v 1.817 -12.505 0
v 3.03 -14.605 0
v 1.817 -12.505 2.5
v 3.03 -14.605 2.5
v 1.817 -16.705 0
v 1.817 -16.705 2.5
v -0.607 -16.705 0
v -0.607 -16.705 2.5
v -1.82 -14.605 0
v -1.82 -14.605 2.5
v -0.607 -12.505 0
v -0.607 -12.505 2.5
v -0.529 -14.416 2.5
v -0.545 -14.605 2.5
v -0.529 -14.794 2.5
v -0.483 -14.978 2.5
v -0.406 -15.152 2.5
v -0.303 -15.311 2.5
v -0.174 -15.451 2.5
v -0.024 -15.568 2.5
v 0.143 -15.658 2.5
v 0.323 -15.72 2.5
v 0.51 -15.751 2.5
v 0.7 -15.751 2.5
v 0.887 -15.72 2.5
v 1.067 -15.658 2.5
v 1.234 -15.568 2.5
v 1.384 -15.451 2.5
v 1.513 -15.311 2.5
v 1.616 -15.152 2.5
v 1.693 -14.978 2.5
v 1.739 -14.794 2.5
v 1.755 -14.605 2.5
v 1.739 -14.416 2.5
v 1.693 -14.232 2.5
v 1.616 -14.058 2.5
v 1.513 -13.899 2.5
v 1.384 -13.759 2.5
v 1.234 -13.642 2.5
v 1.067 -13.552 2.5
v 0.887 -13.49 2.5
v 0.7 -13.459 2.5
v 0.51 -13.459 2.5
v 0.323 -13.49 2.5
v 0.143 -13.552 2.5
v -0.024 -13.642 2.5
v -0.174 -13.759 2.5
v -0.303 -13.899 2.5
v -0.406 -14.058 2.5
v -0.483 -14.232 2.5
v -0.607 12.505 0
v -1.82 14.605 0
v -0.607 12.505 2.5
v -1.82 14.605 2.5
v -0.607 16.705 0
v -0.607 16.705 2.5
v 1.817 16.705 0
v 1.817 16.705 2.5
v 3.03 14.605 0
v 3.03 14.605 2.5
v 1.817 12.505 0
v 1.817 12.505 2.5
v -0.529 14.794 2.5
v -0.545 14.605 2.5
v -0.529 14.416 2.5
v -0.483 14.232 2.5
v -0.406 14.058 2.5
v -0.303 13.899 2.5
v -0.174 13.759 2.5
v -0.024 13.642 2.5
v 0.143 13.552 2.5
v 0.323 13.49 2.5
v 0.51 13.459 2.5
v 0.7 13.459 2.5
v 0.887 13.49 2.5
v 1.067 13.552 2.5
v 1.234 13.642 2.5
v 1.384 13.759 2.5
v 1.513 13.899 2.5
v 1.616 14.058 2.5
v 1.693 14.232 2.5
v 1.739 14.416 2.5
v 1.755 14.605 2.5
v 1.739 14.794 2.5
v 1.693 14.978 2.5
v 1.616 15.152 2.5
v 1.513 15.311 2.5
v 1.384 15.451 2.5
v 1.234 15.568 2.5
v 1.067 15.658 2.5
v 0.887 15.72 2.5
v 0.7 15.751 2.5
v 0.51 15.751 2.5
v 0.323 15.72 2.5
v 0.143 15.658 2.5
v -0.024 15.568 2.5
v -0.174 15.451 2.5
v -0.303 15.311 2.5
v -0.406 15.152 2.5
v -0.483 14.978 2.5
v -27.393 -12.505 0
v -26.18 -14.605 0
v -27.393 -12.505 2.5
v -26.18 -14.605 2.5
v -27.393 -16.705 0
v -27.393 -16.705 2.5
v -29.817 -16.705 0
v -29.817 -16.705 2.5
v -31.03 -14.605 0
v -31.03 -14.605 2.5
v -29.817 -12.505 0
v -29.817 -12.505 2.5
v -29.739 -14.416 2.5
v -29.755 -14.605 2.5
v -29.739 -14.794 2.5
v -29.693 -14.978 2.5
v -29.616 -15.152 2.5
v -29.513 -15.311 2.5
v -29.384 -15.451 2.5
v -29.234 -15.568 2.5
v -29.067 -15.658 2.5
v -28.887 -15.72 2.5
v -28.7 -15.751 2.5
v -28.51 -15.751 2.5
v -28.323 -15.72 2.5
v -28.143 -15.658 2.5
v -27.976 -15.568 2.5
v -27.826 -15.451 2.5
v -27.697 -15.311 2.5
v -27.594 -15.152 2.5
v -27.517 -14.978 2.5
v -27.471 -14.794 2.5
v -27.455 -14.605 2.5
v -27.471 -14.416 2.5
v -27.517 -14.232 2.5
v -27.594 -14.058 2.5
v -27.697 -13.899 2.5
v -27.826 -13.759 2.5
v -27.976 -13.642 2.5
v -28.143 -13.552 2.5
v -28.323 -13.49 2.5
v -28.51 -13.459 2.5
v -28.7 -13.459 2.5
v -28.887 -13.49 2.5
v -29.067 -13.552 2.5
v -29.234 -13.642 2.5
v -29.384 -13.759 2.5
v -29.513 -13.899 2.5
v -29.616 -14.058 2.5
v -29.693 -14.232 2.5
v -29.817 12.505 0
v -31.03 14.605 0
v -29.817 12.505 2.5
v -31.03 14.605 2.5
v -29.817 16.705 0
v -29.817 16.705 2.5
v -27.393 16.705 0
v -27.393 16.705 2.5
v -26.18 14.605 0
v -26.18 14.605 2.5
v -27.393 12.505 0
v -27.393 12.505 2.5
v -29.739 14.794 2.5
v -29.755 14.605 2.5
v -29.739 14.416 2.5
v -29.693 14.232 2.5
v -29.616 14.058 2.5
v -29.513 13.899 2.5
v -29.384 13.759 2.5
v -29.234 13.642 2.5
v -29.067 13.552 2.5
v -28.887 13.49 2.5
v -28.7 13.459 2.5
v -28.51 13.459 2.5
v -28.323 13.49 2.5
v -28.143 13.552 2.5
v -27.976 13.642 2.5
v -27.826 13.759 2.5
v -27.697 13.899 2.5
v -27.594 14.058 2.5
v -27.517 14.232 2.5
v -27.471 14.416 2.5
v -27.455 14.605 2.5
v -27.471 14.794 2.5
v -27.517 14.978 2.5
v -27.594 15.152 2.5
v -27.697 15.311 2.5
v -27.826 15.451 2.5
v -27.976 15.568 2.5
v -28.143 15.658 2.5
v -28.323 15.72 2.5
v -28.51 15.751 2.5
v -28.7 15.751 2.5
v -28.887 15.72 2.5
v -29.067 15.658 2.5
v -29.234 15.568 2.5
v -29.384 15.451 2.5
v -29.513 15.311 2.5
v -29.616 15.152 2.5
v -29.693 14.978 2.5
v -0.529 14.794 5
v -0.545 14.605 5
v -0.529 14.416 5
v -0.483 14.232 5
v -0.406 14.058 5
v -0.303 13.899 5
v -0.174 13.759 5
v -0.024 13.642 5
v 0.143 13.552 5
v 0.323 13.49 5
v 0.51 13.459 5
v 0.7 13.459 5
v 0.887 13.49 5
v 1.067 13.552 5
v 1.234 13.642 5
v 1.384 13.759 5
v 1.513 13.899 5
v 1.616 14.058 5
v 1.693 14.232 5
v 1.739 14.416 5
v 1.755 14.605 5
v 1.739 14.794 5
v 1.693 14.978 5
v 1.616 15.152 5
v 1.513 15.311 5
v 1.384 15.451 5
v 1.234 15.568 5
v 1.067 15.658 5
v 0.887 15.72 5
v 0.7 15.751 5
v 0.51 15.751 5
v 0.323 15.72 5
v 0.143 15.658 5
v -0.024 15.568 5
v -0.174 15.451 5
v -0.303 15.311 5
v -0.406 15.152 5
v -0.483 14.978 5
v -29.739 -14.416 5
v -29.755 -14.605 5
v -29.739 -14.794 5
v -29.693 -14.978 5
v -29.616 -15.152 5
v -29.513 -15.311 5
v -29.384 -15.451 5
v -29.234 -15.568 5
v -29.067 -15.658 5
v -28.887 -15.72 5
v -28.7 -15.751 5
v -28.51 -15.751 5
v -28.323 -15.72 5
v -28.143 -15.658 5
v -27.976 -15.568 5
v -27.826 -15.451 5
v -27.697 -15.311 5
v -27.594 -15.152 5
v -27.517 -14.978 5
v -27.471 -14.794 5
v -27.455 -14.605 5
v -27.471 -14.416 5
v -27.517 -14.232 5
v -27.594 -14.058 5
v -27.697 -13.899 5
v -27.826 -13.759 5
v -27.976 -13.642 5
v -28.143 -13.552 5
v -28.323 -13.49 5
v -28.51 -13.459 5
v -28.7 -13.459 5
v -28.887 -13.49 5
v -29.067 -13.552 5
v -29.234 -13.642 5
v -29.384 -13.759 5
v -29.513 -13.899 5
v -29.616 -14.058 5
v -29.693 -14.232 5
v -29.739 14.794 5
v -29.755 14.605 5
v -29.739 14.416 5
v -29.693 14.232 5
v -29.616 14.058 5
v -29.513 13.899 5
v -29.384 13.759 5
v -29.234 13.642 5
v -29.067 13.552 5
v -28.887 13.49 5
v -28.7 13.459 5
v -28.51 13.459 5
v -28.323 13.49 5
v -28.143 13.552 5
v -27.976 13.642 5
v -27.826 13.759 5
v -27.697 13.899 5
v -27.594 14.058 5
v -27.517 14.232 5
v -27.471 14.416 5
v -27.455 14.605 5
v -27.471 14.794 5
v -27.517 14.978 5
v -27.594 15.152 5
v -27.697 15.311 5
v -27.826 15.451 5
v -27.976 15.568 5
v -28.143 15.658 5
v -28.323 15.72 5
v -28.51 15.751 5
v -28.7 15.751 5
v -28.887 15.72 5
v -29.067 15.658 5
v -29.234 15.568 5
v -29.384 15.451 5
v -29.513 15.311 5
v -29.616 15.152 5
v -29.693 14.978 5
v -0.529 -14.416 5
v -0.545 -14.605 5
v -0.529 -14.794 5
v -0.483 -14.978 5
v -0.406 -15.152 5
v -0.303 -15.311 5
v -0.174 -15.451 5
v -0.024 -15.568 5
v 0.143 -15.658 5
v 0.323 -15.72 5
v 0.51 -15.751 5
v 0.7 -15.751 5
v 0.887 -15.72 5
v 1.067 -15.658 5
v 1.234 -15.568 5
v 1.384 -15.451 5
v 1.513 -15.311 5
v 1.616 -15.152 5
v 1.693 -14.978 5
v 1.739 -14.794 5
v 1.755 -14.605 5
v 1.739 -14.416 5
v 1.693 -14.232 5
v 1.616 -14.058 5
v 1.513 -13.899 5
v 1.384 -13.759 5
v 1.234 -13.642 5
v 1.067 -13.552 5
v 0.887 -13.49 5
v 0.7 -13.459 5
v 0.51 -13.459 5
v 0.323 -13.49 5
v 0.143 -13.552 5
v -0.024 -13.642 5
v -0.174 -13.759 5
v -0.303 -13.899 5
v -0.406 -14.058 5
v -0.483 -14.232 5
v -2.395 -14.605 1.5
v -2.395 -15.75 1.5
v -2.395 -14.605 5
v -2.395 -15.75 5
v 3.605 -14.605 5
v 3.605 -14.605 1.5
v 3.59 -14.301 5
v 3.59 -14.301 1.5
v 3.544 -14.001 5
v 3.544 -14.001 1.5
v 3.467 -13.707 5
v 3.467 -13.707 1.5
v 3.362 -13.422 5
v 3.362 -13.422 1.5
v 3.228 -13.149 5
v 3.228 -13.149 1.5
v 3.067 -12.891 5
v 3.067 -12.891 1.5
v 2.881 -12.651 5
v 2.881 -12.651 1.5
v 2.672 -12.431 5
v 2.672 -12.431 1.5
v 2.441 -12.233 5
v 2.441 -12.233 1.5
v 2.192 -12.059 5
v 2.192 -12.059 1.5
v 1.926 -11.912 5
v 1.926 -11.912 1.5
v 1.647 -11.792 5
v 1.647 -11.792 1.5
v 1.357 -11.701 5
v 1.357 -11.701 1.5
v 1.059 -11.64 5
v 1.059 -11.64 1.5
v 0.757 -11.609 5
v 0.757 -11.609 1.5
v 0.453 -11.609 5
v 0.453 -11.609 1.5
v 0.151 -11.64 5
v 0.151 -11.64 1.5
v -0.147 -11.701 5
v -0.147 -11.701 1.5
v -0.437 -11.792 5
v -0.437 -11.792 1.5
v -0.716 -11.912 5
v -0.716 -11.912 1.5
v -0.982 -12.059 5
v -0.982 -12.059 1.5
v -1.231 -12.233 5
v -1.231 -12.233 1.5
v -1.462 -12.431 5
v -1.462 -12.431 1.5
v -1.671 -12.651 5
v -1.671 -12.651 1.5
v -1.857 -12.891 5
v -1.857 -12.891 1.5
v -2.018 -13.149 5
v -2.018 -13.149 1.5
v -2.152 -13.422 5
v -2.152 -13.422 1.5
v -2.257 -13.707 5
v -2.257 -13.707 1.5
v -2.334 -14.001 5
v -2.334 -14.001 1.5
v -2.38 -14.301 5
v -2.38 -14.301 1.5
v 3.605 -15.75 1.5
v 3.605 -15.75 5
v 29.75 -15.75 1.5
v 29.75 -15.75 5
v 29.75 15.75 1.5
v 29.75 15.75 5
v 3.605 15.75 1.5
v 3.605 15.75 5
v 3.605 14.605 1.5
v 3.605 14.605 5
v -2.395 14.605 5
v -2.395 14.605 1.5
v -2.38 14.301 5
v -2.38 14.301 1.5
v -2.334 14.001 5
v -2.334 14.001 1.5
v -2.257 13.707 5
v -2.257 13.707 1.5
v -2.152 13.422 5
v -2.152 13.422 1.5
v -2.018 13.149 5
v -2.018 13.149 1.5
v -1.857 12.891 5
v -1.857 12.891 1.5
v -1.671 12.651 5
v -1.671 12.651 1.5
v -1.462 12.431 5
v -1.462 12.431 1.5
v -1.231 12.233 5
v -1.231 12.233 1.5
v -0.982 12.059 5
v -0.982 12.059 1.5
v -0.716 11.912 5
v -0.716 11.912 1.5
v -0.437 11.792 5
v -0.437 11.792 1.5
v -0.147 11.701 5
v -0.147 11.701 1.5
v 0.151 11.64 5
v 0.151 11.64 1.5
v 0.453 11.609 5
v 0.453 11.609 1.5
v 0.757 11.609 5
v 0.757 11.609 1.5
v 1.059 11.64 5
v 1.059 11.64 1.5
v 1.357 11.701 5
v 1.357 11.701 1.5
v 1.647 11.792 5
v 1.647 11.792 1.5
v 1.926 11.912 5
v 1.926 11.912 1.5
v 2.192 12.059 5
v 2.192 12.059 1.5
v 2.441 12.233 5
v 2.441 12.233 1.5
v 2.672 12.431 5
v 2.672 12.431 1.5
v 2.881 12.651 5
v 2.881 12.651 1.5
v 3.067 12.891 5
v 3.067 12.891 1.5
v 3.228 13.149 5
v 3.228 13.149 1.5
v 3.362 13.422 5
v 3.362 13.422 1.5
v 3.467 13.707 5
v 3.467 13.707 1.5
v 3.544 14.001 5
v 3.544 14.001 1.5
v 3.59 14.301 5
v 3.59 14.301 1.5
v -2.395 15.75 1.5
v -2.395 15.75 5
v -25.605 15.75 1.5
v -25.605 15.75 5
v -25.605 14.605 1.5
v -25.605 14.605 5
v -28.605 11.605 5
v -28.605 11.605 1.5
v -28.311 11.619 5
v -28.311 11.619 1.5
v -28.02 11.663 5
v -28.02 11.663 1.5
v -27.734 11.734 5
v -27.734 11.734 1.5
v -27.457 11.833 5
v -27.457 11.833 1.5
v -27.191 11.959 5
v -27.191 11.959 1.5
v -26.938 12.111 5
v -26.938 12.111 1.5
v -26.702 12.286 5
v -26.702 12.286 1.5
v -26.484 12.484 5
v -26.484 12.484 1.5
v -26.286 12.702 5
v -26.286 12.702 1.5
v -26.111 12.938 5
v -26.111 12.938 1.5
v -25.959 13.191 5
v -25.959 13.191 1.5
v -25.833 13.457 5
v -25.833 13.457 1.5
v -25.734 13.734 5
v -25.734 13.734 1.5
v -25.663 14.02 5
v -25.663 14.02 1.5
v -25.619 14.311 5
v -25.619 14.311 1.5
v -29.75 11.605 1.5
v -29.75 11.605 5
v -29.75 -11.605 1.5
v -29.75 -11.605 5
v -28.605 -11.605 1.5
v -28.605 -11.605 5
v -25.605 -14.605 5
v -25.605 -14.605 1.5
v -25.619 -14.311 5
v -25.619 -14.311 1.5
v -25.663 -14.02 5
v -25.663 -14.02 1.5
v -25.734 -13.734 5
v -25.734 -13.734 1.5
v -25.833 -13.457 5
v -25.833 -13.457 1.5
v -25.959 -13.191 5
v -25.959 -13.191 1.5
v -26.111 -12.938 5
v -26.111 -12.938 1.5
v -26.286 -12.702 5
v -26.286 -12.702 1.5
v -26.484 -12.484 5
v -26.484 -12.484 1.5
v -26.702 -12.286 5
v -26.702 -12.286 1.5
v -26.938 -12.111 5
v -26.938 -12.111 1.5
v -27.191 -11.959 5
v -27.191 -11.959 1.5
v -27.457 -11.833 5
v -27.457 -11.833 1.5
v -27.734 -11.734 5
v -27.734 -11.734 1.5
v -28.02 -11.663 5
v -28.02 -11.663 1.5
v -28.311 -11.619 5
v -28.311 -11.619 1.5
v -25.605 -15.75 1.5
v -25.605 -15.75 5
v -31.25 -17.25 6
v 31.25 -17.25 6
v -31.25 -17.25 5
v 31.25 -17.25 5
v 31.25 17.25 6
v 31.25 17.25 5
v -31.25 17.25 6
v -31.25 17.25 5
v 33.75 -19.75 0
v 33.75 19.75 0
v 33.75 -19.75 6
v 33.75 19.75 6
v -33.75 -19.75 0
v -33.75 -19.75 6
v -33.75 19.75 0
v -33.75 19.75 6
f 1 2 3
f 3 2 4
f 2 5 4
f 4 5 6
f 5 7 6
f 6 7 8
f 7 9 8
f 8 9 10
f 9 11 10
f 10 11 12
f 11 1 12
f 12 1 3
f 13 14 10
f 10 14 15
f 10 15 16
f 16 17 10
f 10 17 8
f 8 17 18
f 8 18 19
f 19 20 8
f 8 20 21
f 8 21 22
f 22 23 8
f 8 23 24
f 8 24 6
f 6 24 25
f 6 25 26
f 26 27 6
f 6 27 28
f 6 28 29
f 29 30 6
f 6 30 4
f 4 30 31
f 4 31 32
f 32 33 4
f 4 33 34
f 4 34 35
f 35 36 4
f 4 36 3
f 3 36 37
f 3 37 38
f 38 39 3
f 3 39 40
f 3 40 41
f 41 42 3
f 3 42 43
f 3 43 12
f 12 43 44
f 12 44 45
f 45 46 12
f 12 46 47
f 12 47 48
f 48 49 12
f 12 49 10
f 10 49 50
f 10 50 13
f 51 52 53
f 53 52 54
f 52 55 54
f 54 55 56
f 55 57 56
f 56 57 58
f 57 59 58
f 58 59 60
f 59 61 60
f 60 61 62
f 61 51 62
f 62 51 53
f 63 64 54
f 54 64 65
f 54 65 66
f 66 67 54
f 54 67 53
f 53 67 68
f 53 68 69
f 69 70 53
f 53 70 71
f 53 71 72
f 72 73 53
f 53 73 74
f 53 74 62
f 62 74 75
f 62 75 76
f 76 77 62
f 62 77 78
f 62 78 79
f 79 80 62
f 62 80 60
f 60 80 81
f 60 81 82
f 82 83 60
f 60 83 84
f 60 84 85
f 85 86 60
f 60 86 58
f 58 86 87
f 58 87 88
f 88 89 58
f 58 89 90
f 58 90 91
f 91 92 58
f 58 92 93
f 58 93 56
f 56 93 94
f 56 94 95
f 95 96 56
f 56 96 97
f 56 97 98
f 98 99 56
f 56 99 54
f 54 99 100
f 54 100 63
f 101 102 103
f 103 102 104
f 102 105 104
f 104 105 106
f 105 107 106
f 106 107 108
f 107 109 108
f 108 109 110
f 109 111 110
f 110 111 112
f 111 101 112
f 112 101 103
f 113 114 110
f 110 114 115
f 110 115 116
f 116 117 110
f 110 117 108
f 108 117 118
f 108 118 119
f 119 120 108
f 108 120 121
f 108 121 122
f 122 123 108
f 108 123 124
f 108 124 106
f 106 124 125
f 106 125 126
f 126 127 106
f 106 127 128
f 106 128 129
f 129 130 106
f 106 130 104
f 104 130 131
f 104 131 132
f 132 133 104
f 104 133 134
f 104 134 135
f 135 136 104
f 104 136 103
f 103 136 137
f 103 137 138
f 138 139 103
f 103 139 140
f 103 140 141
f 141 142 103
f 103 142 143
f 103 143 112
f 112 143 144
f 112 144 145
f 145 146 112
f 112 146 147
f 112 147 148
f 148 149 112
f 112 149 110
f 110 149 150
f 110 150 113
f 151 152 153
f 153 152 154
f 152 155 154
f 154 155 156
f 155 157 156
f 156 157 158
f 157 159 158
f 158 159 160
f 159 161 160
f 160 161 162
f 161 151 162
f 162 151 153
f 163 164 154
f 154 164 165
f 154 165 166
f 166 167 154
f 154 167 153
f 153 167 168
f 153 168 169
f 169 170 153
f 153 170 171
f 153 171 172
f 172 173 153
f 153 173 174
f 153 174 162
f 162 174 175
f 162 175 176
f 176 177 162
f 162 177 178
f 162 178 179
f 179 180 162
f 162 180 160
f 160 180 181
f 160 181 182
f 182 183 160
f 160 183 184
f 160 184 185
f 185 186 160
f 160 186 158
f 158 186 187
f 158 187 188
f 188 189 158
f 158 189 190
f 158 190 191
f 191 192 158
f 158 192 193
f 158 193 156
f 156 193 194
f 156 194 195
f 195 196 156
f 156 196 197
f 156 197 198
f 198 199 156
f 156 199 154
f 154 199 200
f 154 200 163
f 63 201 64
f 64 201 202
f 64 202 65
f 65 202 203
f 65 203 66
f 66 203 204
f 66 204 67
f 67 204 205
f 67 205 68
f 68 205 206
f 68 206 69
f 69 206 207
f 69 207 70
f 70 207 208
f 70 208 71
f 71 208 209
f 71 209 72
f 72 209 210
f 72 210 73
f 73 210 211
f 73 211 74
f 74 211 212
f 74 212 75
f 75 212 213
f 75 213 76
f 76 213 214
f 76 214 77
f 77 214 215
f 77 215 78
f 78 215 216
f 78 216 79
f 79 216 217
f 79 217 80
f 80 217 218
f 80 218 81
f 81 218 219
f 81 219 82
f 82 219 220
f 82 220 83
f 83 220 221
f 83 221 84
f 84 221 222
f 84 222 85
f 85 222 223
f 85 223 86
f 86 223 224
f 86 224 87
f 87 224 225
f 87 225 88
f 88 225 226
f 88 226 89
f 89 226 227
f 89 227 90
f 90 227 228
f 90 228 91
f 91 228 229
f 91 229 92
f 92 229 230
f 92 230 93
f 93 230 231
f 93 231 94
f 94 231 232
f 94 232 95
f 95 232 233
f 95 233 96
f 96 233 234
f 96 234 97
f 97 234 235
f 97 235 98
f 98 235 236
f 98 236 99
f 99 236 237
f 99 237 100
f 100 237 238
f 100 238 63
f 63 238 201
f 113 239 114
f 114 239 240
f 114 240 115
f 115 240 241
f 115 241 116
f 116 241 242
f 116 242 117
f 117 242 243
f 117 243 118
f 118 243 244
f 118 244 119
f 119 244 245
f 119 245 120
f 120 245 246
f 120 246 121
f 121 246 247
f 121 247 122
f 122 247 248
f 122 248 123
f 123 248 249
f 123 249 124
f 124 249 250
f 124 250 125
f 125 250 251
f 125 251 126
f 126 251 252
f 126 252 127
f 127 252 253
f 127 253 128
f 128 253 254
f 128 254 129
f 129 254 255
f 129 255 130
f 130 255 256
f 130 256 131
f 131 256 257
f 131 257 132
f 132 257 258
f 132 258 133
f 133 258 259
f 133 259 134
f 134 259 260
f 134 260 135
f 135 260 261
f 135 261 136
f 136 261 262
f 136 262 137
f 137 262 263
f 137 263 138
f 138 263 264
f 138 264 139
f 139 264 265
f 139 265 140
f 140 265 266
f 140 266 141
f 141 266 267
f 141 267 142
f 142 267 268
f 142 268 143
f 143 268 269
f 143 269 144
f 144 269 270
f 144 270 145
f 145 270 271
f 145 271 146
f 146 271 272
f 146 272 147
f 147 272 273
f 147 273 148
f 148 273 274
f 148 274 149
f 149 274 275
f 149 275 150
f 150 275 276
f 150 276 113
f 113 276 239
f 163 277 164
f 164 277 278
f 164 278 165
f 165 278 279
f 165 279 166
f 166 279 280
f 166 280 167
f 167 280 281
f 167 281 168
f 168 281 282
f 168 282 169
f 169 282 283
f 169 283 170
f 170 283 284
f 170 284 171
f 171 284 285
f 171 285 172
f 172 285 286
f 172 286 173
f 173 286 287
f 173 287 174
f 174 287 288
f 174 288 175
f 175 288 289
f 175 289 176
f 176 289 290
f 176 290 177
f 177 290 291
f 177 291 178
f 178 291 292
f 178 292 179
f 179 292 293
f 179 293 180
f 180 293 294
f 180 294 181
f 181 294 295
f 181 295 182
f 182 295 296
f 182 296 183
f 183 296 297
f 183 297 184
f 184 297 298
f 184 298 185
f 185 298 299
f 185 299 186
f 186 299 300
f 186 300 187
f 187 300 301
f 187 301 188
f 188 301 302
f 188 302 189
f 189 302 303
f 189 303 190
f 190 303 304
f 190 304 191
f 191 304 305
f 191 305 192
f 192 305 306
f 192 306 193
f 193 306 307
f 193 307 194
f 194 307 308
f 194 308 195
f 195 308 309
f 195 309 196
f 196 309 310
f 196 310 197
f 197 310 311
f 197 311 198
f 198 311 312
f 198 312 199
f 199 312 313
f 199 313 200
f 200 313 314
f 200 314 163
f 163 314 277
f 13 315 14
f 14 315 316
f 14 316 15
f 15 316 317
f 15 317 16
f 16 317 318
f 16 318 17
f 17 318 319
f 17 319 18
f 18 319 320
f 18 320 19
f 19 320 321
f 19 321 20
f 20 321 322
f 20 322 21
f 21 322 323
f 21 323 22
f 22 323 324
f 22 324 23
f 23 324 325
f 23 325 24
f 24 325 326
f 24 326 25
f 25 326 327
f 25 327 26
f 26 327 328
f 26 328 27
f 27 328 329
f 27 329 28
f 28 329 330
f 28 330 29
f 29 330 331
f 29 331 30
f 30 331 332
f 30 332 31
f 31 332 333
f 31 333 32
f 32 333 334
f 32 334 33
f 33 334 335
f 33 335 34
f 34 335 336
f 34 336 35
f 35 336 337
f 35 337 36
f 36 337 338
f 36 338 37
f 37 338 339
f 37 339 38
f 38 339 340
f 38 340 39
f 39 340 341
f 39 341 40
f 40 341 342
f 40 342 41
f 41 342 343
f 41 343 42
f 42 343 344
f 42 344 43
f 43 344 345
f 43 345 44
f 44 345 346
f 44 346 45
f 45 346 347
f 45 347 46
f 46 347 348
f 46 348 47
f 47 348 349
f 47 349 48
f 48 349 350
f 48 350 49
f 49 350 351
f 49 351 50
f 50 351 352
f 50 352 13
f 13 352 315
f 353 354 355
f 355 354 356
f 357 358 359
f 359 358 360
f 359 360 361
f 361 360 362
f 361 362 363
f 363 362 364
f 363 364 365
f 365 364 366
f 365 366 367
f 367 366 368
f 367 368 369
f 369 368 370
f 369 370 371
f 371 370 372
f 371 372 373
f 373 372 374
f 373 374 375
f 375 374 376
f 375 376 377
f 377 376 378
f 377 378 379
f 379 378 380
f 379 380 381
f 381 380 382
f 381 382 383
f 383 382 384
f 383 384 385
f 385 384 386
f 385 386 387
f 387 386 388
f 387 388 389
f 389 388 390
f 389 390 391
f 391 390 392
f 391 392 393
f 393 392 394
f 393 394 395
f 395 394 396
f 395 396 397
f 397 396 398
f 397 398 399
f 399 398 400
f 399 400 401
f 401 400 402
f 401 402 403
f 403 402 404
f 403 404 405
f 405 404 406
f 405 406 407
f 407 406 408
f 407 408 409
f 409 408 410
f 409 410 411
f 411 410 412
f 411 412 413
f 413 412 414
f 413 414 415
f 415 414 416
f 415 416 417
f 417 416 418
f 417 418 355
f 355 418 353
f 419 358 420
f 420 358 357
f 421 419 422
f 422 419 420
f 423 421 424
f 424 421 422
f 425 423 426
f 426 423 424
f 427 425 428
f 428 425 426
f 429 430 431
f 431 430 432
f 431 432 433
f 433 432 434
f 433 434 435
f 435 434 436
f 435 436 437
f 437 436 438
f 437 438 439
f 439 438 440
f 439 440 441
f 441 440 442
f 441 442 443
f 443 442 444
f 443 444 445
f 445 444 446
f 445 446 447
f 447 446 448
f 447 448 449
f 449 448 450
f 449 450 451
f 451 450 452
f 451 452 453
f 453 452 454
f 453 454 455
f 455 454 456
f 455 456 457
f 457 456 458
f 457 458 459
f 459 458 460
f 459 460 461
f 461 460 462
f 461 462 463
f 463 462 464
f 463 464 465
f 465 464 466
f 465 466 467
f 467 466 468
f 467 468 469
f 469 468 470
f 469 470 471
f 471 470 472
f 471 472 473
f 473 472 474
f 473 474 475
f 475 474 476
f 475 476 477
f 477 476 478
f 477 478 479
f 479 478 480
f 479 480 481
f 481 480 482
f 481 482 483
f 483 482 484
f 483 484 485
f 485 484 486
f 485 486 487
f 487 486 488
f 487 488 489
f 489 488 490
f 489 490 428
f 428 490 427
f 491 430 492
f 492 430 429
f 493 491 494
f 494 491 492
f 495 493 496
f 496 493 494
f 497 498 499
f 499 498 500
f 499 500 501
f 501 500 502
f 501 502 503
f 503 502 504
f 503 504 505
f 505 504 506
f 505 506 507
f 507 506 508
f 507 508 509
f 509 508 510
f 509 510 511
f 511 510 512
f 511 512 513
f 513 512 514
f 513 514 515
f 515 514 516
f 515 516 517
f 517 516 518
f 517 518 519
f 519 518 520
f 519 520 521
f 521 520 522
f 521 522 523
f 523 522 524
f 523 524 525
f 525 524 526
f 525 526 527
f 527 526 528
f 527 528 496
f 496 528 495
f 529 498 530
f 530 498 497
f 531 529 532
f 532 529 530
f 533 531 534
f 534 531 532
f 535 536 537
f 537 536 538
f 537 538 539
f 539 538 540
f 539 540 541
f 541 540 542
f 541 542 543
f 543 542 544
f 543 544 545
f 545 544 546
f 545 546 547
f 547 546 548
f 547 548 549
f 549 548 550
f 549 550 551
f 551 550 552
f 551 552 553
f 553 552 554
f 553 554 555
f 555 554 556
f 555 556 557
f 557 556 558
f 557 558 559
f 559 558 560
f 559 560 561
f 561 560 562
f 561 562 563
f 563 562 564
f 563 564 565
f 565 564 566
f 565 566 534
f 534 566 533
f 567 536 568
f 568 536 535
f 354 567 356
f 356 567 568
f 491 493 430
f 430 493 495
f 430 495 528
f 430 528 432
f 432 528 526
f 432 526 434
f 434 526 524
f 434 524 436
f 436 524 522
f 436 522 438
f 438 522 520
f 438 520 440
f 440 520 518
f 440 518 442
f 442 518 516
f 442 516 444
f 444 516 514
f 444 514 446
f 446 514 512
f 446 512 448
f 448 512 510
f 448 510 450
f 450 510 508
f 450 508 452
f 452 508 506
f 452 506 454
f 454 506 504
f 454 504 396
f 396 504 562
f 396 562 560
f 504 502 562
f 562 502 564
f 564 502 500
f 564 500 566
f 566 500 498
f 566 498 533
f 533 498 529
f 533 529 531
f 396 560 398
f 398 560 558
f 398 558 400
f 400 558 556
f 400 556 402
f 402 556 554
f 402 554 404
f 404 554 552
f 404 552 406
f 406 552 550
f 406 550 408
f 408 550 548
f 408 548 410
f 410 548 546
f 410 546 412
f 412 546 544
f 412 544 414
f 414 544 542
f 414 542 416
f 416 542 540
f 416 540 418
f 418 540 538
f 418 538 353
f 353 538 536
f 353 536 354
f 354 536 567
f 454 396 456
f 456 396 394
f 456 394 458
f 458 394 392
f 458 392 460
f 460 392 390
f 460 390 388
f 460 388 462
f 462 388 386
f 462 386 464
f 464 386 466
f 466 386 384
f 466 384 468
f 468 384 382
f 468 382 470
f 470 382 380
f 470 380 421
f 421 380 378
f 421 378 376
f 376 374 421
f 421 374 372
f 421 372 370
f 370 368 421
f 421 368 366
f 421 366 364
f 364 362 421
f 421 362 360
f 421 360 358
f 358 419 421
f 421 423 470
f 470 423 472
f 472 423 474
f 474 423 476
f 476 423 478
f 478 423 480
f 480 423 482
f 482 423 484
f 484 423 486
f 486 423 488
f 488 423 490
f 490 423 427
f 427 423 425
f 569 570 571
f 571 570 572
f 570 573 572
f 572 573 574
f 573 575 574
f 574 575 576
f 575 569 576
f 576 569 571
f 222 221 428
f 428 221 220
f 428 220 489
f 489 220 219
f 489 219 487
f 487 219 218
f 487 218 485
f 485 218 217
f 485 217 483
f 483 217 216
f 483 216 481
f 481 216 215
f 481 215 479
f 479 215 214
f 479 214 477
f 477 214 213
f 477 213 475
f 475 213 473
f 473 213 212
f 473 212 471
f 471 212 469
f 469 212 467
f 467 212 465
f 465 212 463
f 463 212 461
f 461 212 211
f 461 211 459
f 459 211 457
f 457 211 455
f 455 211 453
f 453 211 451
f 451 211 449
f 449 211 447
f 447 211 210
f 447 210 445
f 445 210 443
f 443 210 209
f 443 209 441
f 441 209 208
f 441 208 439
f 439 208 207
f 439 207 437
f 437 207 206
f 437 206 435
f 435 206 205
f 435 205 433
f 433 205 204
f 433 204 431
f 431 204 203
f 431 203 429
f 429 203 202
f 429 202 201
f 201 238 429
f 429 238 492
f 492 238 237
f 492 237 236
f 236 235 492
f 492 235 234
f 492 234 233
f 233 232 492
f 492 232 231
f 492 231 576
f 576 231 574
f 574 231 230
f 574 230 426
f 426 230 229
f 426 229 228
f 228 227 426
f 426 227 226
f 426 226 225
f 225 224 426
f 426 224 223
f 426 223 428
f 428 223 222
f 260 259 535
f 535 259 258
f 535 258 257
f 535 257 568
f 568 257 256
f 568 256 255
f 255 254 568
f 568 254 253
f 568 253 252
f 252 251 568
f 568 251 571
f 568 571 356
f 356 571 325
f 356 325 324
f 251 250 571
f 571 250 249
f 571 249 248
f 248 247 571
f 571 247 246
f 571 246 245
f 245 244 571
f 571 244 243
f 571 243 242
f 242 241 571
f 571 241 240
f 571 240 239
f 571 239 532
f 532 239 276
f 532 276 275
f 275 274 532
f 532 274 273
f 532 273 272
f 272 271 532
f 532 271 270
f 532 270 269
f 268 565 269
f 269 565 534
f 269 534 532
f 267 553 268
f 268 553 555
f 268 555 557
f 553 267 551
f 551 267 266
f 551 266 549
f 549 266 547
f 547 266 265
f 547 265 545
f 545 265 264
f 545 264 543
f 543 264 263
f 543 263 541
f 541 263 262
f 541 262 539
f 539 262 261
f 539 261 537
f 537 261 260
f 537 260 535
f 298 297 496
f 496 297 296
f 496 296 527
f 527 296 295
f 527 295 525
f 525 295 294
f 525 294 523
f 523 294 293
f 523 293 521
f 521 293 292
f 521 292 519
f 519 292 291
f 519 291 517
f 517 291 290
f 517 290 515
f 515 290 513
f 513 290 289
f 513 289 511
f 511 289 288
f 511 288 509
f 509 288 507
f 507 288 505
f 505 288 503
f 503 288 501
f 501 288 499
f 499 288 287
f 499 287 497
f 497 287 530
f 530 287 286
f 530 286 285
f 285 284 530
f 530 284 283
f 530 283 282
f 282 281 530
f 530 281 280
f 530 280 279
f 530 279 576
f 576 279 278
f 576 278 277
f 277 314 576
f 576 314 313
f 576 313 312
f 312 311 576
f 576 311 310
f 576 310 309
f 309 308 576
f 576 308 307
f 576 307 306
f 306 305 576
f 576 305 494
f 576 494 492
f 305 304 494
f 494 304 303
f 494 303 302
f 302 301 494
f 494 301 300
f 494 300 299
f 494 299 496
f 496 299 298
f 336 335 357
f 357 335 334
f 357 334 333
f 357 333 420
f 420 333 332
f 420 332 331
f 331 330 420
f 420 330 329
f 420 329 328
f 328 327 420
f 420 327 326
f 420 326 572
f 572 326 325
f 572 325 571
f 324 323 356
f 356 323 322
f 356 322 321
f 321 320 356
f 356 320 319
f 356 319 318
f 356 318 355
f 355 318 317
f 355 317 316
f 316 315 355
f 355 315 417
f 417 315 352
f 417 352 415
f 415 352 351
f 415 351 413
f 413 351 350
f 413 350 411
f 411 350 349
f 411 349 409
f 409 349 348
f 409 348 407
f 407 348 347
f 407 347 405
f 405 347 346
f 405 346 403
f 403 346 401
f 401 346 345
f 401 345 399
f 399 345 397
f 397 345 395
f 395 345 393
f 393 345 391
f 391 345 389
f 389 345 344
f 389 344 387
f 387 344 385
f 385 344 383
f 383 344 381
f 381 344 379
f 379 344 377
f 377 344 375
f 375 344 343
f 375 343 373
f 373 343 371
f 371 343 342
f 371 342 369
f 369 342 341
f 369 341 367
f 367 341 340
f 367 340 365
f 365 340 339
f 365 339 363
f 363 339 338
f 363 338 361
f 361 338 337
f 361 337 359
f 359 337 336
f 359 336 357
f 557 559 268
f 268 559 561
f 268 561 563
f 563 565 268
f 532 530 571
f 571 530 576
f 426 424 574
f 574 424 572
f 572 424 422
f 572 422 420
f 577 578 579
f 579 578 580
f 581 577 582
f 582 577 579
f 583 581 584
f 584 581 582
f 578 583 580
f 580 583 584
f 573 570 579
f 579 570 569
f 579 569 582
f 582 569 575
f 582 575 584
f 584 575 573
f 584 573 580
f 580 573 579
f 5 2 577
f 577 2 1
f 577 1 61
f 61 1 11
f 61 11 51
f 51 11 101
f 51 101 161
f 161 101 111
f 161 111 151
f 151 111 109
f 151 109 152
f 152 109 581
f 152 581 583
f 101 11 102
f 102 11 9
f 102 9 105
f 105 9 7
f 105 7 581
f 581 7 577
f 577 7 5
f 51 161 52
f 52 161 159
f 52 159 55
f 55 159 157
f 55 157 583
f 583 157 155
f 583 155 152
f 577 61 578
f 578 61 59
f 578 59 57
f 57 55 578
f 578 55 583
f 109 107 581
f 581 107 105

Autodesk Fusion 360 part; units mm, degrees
sketch "Skizze1" plane through (0, 0, 0) normal (0, 0, 1) x (1, 0, 0)
  line L0 (33.75, -19.75) -> (-33.75, -19.75)
  line L1 (-33.75, -19.75) -> (-33.75, 19.75)
  line L2 (-33.75, 19.75) -> (33.75, 19.75)
  line L3 (33.75, 19.75) -> (33.75, -19.75)
  line L4 (33.75, -19.75) -> (-33.75, 19.75) construction
  line L5 (-33.75, -19.75) -> (33.75, 19.75) construction
  dimension "d1" = 67.5
  dimension "d2" = 39.5
extrude "Extrusion1" add sketch "Skizze1" along normal blind 6
sketch "Skizze2" plane through (0, 0, 6) normal (0, 0, 1) x (-1, 0, 0)
  line L0 (-33.75, -19.75) -> (33.75, -19.75)
  line L1 (33.75, -19.75) -> (33.75, 19.75)
  line L2 (33.75, 19.75) -> (-33.75, 19.75)
  line L3 (-33.75, 19.75) -> (-33.75, -19.75)
  line L4 (31.25, 17.25) -> (-31.25, 17.25)
  line L5 (-31.25, 17.25) -> (-31.25, -17.25)
  line L6 (-31.25, -17.25) -> (31.25, -17.25)
  line L7 (31.25, -17.25) -> (31.25, 17.25)
  line L8 (31.25, 17.25) -> (-31.25, -17.25) construction
  line L9 (-31.25, 17.25) -> (31.25, -17.25) construction
  dimension "d5" = 34.5
  dimension "d6" = 62.5
extrude "Extrusion2" cut sketch "Skizze2" against normal blind 1 contours L4 L5 L6 L7
sketch "Skizze3" plane through (0, 0, 5) normal (0, 0, 1) x (-1, 0, 0)
  line L0 (31.25, -17.25) -> (31.25, 17.25)
  line L1 (31.25, 17.25) -> (-31.25, 17.25)
  line L2 (-31.25, 17.25) -> (-31.25, -17.25)
  line L3 (-31.25, -17.25) -> (31.25, -17.25)
  line L4 (29.75, -15.75) -> (-29.75, -15.75)
  line L5 (-29.75, -15.75) -> (-29.75, 15.75)
  line L6 (-29.75, 15.75) -> (29.75, 15.75)
  line L7 (29.75, 15.75) -> (29.75, -15.75)
  line L8 (29.75, -15.75) -> (-29.75, 15.75) construction
  line L9 (-29.75, -15.75) -> (29.75, 15.75) construction
  line L10 (28.605, -14.605) -> (-0.605, -14.605) construction
  line L11 (-0.605, -14.605) -> (-0.605, 14.605) construction
  line L12 (-0.605, 14.605) -> (28.605, 14.605) construction
  line L13 (28.605, 14.605) -> (28.605, -14.605) construction
  line L14 (31.25, -17.25) -> (28.605, -14.605) construction
  line L15 (31.25, 17.25) -> (28.605, 14.605) construction
  line L16 (28.605, -11.605) -> (29.75, -11.605)
  line L17 (25.605, -14.605) -> (25.605, -15.75)
  line L18 (28.605, 11.605) -> (29.75, 11.605)
  line L19 (25.605, 14.605) -> (25.605, 15.75)
  arc A0 (28.605, -11.605) -> (25.605, -14.605) centre (28.605, -14.605) ccw
  arc A1 (25.605, 14.605) -> (28.605, 11.605) centre (28.605, 14.605) ccw
  line L20 (2.395, 14.605) -> (2.395, 15.75)
  line L21 (-3.605, 14.605) -> (-3.605, 15.75)
  line L22 (2.395, -14.605) -> (2.395, -15.75)
  line L23 (-3.605, -14.605) -> (-3.605, -15.75)
  arc A2 (2.395, -14.605) -> (-3.605, -14.605) centre (-0.605, -14.605) ccw
  arc A3 (-3.605, 14.605) -> (2.395, 14.605) centre (-0.605, 14.605) ccw
  dimension "d9" = 1.5
  dimension "d10" = 1.5
  dimension "d13" = 29.21
  dimension "d14" = 29.21
  dimension "d15" = 6
extrude "Extrusion3" cut sketch "Skizze3" against normal up to surface (3.5 mm away) contours L4 L5 L6 L7 L16 L17 L18 L19 A0 A1 L20 L21 L22 L23 A2 A3
sketch "Skizze4" plane through (0, 0, 5) normal (0, 0, 1) x (-1, 0, 0)
  line L0 (2.395, 14.605) -> (2.395, 15.75)
  line L1 (2.395, 15.75) -> (25.605, 15.75)
  line L2 (25.605, 15.75) -> (25.605, 14.605)
  arc A0 (25.605, 14.605) -> (28.605, 11.605) centre (28.605, 14.605) ccw
  line L3 (28.605, 11.605) -> (29.75, 11.605)
  line L4 (29.75, 11.605) -> (29.75, -11.605)
  line L5 (29.75, -11.605) -> (28.605, -11.605)
  arc A1 (28.605, -11.605) -> (25.605, -14.605) centre (28.605, -14.605) ccw
  line L6 (25.605, -14.605) -> (25.605, -15.75)
  line L7 (25.605, -15.75) -> (2.395, -15.75)
  line L8 (2.395, -15.75) -> (2.395, -14.605)
  arc A2 (2.395, -14.605) -> (-3.605, -14.605) centre (-0.605, -14.605) ccw
  line L9 (-3.605, -14.605) -> (-3.605, -15.75)
  line L10 (-3.605, -15.75) -> (-29.75, -15.75)
  line L11 (-29.75, -15.75) -> (-29.75, 15.75)
  line L12 (-29.75, 15.75) -> (-3.605, 15.75)
  line L13 (-3.605, 15.75) -> (-3.605, 14.605)
  arc A3 (-3.605, 14.605) -> (2.395, 14.605) centre (-0.605, 14.605) ccw
  line L14 (31.25, -17.25) -> (31.25, 17.25)
  line L15 (31.25, 17.25) -> (-31.25, 17.25)
  line L16 (-31.25, 17.25) -> (-31.25, -17.25)
  line L17 (-31.25, -17.25) -> (31.25, -17.25)
  circle A4 centre (28.605, -14.605) radius 1.15
  circle A5 centre (-0.605, -14.605) radius 1.15
  circle A6 centre (28.605, 14.605) radius 1.15
  circle A7 centre (-0.605, 14.605) radius 1.15
  dimension "d16" = 2.3
extrude "Extrusion4" cut sketch "Skizze4" against normal through all contours A4 | A5 | A6 | A7
sketch "Skizze5" plane through (0, 0, 0) normal (0, 0, -1) x (1, 0, 0)
  circle A0 centre (0.605, -14.605) radius 1.15
  circle A1 centre (-28.605, 14.605) radius 1.15
  circle A2 centre (-28.605, -14.605) radius 1.15
  circle A3 centre (0.605, 14.605) radius 1.15
  line L0 (-33.75, -19.75) -> (33.75, -19.75)
  line L1 (33.75, -19.75) -> (33.75, 19.75)
  line L2 (33.75, 19.75) -> (-33.75, 19.75)
  line L3 (-33.75, 19.75) -> (-33.75, -19.75)
  line L4 (-27.3926, 12.505) -> (-26.1801, 14.605)
  line L5 (-26.1801, 14.605) -> (-27.3926, 16.705)
  line L6 (-27.3926, 16.705) -> (-29.8174, 16.705)
  line L7 (-29.8174, 16.705) -> (-31.0299, 14.605)
  line L8 (-31.0299, 14.605) -> (-29.8174, 12.505)
  line L9 (-29.8174, 12.505) -> (-27.3926, 12.505)
  circle A4 centre (-28.605, 14.605) radius 1.15
  line L10 (-29.8174, -12.505) -> (-31.0299, -14.605)
  line L11 (-31.0299, -14.605) -> (-29.8174, -16.705)
  line L12 (-29.8174, -16.705) -> (-27.3926, -16.705)
  line L13 (-27.3926, -16.705) -> (-26.1801, -14.605)
  line L14 (-26.1801, -14.605) -> (-27.3926, -12.505)
  line L15 (-27.3926, -12.505) -> (-29.8174, -12.505)
  line L16 (1.8174, 12.505) -> (3.0299, 14.605)
  line L17 (3.0299, 14.605) -> (1.8174, 16.705)
  line L18 (1.8174, 16.705) -> (-0.6074, 16.705)
  line L19 (-0.6074, 16.705) -> (-1.8199, 14.605)
  line L20 (-1.8199, 14.605) -> (-0.6074, 12.505)
  line L21 (-0.6074, 12.505) -> (1.8174, 12.505)
  line L22 (-0.6074, -12.505) -> (-1.8199, -14.605)
  line L23 (-1.8199, -14.605) -> (-0.6074, -16.705)
  line L24 (-0.6074, -16.705) -> (1.8174, -16.705)
  line L25 (1.8174, -16.705) -> (3.0299, -14.605)
  line L26 (3.0299, -14.605) -> (1.8174, -12.505)
  line L27 (1.8174, -12.505) -> (-0.6074, -12.505)
  circle A5 centre (0.605, -14.605) radius 1.15
  point P0 (-28.605, 14.605)
  point P1 (-28.605, -14.605)
  point P2 (0.605, 14.605)
  point P3 (0.605, -14.605)
  dimension "d18" = 4.2
extrude "Extrusion5" cut sketch "Skizze5" against normal blind 2.5 contours L4 L5 L6 L7 L8 L9 | L10 L11 L12 L13 L14 L15 | L16 L17 L18 L19 L20 L21 | L22 L23 L24 L25 L26 L27
equation "d10 = d9"
